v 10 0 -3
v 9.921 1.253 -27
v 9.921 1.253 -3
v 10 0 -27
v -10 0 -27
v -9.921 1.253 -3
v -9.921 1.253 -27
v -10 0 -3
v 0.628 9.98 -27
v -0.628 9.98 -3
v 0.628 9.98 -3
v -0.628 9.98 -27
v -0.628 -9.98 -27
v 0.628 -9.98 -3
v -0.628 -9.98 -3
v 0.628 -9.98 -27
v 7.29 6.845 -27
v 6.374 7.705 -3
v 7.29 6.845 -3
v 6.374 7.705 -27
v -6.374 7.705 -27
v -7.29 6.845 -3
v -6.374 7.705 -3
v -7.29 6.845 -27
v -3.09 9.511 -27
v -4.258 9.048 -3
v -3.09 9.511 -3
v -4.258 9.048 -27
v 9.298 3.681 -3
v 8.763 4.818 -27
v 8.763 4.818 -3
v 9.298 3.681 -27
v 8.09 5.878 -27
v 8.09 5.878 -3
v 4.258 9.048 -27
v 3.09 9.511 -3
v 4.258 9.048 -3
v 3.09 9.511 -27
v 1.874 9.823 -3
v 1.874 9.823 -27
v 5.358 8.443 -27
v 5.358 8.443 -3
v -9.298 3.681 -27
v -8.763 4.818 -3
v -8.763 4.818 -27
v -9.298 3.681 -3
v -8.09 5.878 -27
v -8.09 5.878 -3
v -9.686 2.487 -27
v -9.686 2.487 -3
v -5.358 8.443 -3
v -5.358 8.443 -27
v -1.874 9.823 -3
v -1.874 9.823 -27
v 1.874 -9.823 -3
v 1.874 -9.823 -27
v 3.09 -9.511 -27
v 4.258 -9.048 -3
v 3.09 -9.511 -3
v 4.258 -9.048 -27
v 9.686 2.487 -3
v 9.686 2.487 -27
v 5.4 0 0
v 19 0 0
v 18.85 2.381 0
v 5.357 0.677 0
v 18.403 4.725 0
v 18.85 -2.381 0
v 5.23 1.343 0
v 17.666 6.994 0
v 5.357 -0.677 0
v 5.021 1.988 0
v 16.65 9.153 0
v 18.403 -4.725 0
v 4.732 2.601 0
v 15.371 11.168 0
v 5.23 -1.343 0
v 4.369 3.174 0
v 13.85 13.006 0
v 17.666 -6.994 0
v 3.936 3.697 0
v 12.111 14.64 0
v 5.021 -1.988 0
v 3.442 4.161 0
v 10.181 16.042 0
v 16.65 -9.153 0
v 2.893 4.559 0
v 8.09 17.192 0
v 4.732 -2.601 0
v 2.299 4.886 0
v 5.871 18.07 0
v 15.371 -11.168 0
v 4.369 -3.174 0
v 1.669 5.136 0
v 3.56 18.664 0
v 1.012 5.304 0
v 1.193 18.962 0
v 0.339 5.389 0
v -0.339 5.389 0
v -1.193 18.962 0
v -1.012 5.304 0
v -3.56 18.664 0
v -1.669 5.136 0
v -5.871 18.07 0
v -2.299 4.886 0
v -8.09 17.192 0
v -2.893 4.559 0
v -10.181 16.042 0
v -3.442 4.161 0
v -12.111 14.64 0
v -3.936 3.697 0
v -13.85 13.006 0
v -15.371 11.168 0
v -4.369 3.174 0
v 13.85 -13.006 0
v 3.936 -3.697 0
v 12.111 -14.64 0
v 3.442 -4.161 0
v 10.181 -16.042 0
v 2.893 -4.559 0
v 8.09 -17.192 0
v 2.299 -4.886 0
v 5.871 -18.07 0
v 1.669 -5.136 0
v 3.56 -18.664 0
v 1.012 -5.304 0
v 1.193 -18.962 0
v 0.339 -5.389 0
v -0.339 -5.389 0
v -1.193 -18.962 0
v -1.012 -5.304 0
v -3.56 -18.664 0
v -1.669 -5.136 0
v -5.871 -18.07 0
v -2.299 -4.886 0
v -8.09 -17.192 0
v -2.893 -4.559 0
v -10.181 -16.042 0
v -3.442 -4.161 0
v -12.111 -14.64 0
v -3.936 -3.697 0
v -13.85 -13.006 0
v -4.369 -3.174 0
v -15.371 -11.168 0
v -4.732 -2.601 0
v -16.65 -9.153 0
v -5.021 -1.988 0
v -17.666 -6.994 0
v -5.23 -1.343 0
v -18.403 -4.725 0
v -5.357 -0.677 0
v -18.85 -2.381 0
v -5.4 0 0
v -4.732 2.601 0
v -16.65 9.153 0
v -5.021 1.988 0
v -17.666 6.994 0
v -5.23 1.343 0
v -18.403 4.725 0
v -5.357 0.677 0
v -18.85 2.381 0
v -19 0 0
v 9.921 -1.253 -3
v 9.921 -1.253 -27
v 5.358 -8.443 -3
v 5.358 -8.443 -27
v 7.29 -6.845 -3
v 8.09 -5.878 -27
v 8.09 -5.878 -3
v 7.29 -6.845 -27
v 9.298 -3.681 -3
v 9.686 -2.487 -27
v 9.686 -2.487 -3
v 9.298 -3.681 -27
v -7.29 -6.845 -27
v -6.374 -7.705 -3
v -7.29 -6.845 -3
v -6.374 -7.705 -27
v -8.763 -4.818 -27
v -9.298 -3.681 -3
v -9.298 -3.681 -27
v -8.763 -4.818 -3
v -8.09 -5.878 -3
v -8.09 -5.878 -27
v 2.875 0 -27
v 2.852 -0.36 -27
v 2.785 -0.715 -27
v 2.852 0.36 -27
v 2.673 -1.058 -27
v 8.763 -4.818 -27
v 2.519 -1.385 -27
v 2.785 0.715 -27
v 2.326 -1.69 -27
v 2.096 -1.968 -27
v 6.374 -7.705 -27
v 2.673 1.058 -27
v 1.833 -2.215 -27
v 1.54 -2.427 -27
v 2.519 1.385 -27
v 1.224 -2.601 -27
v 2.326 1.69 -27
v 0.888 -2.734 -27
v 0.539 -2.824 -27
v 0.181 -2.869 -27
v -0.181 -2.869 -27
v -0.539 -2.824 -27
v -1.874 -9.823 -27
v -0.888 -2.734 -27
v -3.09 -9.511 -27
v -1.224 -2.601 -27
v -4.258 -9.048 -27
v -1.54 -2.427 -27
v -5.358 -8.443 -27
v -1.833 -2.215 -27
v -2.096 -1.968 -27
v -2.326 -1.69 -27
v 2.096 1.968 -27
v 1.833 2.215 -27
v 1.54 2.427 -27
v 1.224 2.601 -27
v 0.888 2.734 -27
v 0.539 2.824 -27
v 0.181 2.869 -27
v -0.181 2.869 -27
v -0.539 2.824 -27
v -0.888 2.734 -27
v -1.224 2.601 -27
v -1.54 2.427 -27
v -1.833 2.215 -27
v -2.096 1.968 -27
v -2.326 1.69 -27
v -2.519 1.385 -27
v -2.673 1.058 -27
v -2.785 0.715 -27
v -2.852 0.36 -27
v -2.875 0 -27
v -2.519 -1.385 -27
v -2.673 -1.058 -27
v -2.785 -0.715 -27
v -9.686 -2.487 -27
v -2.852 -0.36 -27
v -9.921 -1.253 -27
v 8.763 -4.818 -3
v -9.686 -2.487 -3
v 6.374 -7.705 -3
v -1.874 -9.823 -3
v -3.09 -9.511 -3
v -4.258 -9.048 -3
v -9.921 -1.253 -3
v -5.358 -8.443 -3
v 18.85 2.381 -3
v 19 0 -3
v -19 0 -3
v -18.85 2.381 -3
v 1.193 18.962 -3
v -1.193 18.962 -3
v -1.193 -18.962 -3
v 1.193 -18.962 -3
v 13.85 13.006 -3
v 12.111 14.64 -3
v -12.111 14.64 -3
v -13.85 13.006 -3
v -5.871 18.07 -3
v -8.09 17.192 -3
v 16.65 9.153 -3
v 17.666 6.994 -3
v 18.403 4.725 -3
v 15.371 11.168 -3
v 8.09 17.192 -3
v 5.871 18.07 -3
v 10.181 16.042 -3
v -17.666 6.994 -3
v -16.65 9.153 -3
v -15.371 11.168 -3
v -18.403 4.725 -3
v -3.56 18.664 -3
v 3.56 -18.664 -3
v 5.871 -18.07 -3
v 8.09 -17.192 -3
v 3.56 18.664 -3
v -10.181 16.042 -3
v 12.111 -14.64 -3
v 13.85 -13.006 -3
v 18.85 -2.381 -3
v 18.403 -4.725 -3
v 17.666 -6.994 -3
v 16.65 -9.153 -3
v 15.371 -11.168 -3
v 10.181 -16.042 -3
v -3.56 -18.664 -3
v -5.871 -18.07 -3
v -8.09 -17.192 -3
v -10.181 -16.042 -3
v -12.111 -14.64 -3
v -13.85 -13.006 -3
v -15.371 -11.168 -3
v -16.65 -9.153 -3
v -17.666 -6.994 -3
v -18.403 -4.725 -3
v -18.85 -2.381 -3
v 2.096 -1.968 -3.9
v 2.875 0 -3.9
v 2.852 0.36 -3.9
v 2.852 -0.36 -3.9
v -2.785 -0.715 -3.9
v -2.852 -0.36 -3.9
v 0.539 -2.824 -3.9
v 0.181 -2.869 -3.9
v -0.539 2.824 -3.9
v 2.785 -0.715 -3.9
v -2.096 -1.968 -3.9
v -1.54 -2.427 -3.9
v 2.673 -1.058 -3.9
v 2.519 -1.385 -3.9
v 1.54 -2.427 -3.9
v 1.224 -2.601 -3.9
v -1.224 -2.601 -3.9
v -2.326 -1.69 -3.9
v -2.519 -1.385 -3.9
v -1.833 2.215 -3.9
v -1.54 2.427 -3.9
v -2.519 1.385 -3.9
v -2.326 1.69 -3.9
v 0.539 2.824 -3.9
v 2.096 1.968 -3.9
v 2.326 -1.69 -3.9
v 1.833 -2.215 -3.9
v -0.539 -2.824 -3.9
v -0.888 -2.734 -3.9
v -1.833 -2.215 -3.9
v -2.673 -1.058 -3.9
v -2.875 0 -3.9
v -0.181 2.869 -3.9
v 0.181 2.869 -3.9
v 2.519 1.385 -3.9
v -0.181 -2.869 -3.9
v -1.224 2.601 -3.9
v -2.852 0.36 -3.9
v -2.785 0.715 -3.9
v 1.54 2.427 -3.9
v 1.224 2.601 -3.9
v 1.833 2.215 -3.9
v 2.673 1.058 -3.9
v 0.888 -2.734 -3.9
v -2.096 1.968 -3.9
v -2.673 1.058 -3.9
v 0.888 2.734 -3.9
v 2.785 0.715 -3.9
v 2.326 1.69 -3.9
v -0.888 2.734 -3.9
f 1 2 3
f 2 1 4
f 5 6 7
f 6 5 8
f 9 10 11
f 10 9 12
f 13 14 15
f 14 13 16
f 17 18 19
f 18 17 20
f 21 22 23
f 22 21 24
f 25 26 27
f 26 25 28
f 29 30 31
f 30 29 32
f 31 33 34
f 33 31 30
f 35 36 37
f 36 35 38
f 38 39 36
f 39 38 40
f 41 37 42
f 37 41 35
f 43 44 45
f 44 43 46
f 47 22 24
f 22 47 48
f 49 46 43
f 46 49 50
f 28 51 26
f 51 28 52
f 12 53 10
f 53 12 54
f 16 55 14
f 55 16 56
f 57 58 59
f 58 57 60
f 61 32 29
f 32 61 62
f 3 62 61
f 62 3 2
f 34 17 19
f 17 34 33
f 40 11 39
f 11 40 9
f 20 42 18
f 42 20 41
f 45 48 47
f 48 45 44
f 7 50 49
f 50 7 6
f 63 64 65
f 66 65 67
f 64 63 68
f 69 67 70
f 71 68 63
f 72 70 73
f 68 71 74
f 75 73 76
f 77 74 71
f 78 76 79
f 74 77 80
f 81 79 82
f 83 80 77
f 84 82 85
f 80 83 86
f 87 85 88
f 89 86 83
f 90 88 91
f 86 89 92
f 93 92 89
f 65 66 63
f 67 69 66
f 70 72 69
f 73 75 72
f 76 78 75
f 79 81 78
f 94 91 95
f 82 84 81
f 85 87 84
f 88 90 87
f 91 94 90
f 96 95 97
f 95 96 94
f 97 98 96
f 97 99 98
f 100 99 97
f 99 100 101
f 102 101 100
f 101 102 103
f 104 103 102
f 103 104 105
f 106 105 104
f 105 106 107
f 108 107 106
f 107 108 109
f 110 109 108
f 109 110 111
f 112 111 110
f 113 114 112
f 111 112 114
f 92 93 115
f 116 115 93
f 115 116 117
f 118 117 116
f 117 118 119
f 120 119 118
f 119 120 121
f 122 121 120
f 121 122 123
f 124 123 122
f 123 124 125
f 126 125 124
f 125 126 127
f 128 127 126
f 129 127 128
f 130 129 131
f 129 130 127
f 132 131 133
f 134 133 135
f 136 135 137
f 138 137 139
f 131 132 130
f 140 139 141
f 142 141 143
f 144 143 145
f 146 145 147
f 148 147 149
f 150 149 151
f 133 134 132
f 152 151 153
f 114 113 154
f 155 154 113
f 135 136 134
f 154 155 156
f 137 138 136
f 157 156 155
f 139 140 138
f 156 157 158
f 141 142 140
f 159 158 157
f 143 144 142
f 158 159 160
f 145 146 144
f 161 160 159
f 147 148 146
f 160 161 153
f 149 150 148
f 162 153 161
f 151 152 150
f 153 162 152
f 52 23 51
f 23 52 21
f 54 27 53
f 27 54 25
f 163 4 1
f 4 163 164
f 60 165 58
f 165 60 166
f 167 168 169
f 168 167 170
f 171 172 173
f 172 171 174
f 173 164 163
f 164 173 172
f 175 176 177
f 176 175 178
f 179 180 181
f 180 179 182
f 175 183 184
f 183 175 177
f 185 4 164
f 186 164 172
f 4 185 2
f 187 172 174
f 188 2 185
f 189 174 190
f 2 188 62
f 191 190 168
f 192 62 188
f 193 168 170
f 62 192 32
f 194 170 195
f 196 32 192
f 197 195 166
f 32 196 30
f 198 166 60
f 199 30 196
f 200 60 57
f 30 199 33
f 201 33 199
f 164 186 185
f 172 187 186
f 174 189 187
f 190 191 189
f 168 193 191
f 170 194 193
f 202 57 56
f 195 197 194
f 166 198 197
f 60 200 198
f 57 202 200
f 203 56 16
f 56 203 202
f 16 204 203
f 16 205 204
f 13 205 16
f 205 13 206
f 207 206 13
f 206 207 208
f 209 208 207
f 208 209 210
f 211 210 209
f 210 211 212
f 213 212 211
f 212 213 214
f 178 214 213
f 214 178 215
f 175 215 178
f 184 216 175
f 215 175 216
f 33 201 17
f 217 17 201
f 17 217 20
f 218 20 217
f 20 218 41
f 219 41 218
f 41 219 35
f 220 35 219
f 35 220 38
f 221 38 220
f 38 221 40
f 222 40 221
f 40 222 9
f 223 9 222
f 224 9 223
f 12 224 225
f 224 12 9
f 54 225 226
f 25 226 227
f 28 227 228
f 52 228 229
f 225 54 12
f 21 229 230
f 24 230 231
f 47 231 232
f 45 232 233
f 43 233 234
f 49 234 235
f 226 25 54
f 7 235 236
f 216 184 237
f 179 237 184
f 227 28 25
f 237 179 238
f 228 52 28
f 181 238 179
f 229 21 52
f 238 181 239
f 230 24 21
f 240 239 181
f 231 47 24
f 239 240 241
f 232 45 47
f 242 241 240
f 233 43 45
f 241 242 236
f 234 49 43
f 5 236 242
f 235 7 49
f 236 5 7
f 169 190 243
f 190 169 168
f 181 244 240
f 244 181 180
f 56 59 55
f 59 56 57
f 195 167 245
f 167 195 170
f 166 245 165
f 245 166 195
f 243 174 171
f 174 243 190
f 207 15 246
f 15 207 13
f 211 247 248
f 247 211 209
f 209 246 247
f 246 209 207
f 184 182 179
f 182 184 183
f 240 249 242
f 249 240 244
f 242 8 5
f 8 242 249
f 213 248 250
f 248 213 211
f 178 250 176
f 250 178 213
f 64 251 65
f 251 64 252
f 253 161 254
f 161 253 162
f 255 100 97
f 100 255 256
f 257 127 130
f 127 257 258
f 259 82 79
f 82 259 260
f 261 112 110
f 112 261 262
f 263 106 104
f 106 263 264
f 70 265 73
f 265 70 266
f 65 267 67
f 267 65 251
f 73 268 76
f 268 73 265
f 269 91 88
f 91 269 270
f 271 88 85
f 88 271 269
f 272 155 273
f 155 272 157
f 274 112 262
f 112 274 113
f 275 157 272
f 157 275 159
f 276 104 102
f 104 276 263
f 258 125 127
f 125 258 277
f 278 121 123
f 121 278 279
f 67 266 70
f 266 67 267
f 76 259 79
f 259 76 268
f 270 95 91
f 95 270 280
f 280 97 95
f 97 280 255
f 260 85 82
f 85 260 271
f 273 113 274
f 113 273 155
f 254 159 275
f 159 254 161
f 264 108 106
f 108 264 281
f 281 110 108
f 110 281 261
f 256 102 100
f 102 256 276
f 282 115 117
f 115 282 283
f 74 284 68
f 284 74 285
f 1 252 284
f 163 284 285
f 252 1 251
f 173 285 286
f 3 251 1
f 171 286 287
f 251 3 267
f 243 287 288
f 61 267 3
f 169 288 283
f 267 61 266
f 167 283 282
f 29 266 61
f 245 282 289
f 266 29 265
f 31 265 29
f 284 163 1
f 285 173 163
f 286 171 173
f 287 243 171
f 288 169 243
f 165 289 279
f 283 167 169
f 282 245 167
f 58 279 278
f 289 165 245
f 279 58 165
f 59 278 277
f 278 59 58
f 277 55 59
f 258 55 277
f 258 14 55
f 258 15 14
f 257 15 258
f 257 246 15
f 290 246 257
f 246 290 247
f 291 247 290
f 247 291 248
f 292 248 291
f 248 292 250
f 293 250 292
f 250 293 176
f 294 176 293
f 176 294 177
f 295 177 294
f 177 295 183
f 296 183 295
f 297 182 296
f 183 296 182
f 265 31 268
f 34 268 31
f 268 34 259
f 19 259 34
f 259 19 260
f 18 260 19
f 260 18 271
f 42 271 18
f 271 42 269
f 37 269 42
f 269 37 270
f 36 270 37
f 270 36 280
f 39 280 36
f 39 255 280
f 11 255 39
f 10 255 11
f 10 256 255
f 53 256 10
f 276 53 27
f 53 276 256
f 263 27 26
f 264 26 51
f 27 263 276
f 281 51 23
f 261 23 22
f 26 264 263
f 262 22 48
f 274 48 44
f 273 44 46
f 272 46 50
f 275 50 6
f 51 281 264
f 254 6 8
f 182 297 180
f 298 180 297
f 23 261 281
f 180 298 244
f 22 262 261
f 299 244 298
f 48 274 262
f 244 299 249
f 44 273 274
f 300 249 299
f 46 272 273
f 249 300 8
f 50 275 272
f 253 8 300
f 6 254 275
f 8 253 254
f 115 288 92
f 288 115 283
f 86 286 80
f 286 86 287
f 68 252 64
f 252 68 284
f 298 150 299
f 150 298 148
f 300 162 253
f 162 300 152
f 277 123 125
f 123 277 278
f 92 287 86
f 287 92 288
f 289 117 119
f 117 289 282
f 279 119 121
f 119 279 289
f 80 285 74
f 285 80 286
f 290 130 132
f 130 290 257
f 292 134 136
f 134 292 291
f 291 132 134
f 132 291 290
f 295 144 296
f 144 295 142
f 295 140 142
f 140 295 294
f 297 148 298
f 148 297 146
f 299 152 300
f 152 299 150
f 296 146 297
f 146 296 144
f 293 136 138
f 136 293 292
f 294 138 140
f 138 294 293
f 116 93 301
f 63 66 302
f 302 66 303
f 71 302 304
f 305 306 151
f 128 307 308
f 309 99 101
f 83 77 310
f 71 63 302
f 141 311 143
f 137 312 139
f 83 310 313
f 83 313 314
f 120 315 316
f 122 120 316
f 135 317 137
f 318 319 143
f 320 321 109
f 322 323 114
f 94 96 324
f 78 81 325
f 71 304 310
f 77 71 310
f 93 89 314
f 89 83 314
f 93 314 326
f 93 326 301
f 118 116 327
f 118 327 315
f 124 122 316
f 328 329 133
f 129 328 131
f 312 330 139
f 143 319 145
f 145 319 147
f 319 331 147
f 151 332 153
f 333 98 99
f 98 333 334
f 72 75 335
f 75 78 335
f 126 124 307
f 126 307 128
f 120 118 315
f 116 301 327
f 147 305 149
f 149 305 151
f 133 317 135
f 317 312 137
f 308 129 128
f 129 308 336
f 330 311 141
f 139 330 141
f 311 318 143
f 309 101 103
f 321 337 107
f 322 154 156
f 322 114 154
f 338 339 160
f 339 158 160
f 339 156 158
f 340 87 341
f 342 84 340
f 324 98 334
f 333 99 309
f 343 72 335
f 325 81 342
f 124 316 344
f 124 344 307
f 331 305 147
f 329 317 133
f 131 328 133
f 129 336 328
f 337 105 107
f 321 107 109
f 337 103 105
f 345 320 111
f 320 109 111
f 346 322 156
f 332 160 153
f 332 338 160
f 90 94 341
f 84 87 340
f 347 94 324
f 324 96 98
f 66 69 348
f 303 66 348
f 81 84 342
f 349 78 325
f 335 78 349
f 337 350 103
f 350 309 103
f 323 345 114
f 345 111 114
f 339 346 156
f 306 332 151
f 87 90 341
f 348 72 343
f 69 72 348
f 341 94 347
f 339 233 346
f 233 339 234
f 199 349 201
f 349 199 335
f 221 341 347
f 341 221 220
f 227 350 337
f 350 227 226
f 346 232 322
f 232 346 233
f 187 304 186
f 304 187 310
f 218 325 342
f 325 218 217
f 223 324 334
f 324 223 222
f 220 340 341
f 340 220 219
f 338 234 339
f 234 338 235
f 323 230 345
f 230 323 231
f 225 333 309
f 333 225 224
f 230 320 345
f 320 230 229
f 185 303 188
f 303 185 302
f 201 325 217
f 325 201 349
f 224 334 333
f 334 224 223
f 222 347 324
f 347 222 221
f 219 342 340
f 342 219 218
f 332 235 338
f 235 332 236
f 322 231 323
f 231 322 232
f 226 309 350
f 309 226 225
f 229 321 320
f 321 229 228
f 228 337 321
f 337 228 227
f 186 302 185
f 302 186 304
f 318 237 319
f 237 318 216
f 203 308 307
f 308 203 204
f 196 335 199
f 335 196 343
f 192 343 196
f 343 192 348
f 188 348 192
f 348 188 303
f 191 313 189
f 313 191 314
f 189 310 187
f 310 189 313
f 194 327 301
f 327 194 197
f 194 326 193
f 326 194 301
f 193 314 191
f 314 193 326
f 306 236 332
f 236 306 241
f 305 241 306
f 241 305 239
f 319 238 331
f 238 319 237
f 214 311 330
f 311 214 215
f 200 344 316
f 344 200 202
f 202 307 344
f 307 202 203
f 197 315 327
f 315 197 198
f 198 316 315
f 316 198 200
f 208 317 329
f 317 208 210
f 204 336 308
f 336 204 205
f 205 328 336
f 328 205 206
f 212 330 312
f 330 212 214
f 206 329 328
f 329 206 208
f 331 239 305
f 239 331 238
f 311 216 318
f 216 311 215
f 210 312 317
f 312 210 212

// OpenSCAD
$fn = 50;


difference() {
	union() {
		translate(v = [0, 0, -27.0000000000]) {
			cylinder(h = 27, r = 10.0000000000);
		}
		translate(v = [0, 0, -3.0000000000]) {
			cylinder(h = 3, r = 19.0000000000);
		}
	}
	union() {
		translate(v = [0, 0, 0]) {
			rotate(a = [0, 0, 0]) {
				difference() {
					union() {
						#translate(v = [0, 0, -27.0000000000]) {
							cylinder(h = 27, r = 2.6000000000);
						}
						#translate(v = [0, 0, -3.9000000000]) {
							cylinder(h = 3.9000000000, r1 = 2.8750000000, r2 = 5.4000000000);
						}
						#translate(v = [0, 0, -27.0000000000]) {
							cylinder(h = 27, r = 2.8750000000);
						}
						#translate(v = [0, 0, -27.0000000000]) {
							cylinder(h = 27, r = 2.6000000000);
						}
					}
					union();
				}
			}
		}
	}
}
